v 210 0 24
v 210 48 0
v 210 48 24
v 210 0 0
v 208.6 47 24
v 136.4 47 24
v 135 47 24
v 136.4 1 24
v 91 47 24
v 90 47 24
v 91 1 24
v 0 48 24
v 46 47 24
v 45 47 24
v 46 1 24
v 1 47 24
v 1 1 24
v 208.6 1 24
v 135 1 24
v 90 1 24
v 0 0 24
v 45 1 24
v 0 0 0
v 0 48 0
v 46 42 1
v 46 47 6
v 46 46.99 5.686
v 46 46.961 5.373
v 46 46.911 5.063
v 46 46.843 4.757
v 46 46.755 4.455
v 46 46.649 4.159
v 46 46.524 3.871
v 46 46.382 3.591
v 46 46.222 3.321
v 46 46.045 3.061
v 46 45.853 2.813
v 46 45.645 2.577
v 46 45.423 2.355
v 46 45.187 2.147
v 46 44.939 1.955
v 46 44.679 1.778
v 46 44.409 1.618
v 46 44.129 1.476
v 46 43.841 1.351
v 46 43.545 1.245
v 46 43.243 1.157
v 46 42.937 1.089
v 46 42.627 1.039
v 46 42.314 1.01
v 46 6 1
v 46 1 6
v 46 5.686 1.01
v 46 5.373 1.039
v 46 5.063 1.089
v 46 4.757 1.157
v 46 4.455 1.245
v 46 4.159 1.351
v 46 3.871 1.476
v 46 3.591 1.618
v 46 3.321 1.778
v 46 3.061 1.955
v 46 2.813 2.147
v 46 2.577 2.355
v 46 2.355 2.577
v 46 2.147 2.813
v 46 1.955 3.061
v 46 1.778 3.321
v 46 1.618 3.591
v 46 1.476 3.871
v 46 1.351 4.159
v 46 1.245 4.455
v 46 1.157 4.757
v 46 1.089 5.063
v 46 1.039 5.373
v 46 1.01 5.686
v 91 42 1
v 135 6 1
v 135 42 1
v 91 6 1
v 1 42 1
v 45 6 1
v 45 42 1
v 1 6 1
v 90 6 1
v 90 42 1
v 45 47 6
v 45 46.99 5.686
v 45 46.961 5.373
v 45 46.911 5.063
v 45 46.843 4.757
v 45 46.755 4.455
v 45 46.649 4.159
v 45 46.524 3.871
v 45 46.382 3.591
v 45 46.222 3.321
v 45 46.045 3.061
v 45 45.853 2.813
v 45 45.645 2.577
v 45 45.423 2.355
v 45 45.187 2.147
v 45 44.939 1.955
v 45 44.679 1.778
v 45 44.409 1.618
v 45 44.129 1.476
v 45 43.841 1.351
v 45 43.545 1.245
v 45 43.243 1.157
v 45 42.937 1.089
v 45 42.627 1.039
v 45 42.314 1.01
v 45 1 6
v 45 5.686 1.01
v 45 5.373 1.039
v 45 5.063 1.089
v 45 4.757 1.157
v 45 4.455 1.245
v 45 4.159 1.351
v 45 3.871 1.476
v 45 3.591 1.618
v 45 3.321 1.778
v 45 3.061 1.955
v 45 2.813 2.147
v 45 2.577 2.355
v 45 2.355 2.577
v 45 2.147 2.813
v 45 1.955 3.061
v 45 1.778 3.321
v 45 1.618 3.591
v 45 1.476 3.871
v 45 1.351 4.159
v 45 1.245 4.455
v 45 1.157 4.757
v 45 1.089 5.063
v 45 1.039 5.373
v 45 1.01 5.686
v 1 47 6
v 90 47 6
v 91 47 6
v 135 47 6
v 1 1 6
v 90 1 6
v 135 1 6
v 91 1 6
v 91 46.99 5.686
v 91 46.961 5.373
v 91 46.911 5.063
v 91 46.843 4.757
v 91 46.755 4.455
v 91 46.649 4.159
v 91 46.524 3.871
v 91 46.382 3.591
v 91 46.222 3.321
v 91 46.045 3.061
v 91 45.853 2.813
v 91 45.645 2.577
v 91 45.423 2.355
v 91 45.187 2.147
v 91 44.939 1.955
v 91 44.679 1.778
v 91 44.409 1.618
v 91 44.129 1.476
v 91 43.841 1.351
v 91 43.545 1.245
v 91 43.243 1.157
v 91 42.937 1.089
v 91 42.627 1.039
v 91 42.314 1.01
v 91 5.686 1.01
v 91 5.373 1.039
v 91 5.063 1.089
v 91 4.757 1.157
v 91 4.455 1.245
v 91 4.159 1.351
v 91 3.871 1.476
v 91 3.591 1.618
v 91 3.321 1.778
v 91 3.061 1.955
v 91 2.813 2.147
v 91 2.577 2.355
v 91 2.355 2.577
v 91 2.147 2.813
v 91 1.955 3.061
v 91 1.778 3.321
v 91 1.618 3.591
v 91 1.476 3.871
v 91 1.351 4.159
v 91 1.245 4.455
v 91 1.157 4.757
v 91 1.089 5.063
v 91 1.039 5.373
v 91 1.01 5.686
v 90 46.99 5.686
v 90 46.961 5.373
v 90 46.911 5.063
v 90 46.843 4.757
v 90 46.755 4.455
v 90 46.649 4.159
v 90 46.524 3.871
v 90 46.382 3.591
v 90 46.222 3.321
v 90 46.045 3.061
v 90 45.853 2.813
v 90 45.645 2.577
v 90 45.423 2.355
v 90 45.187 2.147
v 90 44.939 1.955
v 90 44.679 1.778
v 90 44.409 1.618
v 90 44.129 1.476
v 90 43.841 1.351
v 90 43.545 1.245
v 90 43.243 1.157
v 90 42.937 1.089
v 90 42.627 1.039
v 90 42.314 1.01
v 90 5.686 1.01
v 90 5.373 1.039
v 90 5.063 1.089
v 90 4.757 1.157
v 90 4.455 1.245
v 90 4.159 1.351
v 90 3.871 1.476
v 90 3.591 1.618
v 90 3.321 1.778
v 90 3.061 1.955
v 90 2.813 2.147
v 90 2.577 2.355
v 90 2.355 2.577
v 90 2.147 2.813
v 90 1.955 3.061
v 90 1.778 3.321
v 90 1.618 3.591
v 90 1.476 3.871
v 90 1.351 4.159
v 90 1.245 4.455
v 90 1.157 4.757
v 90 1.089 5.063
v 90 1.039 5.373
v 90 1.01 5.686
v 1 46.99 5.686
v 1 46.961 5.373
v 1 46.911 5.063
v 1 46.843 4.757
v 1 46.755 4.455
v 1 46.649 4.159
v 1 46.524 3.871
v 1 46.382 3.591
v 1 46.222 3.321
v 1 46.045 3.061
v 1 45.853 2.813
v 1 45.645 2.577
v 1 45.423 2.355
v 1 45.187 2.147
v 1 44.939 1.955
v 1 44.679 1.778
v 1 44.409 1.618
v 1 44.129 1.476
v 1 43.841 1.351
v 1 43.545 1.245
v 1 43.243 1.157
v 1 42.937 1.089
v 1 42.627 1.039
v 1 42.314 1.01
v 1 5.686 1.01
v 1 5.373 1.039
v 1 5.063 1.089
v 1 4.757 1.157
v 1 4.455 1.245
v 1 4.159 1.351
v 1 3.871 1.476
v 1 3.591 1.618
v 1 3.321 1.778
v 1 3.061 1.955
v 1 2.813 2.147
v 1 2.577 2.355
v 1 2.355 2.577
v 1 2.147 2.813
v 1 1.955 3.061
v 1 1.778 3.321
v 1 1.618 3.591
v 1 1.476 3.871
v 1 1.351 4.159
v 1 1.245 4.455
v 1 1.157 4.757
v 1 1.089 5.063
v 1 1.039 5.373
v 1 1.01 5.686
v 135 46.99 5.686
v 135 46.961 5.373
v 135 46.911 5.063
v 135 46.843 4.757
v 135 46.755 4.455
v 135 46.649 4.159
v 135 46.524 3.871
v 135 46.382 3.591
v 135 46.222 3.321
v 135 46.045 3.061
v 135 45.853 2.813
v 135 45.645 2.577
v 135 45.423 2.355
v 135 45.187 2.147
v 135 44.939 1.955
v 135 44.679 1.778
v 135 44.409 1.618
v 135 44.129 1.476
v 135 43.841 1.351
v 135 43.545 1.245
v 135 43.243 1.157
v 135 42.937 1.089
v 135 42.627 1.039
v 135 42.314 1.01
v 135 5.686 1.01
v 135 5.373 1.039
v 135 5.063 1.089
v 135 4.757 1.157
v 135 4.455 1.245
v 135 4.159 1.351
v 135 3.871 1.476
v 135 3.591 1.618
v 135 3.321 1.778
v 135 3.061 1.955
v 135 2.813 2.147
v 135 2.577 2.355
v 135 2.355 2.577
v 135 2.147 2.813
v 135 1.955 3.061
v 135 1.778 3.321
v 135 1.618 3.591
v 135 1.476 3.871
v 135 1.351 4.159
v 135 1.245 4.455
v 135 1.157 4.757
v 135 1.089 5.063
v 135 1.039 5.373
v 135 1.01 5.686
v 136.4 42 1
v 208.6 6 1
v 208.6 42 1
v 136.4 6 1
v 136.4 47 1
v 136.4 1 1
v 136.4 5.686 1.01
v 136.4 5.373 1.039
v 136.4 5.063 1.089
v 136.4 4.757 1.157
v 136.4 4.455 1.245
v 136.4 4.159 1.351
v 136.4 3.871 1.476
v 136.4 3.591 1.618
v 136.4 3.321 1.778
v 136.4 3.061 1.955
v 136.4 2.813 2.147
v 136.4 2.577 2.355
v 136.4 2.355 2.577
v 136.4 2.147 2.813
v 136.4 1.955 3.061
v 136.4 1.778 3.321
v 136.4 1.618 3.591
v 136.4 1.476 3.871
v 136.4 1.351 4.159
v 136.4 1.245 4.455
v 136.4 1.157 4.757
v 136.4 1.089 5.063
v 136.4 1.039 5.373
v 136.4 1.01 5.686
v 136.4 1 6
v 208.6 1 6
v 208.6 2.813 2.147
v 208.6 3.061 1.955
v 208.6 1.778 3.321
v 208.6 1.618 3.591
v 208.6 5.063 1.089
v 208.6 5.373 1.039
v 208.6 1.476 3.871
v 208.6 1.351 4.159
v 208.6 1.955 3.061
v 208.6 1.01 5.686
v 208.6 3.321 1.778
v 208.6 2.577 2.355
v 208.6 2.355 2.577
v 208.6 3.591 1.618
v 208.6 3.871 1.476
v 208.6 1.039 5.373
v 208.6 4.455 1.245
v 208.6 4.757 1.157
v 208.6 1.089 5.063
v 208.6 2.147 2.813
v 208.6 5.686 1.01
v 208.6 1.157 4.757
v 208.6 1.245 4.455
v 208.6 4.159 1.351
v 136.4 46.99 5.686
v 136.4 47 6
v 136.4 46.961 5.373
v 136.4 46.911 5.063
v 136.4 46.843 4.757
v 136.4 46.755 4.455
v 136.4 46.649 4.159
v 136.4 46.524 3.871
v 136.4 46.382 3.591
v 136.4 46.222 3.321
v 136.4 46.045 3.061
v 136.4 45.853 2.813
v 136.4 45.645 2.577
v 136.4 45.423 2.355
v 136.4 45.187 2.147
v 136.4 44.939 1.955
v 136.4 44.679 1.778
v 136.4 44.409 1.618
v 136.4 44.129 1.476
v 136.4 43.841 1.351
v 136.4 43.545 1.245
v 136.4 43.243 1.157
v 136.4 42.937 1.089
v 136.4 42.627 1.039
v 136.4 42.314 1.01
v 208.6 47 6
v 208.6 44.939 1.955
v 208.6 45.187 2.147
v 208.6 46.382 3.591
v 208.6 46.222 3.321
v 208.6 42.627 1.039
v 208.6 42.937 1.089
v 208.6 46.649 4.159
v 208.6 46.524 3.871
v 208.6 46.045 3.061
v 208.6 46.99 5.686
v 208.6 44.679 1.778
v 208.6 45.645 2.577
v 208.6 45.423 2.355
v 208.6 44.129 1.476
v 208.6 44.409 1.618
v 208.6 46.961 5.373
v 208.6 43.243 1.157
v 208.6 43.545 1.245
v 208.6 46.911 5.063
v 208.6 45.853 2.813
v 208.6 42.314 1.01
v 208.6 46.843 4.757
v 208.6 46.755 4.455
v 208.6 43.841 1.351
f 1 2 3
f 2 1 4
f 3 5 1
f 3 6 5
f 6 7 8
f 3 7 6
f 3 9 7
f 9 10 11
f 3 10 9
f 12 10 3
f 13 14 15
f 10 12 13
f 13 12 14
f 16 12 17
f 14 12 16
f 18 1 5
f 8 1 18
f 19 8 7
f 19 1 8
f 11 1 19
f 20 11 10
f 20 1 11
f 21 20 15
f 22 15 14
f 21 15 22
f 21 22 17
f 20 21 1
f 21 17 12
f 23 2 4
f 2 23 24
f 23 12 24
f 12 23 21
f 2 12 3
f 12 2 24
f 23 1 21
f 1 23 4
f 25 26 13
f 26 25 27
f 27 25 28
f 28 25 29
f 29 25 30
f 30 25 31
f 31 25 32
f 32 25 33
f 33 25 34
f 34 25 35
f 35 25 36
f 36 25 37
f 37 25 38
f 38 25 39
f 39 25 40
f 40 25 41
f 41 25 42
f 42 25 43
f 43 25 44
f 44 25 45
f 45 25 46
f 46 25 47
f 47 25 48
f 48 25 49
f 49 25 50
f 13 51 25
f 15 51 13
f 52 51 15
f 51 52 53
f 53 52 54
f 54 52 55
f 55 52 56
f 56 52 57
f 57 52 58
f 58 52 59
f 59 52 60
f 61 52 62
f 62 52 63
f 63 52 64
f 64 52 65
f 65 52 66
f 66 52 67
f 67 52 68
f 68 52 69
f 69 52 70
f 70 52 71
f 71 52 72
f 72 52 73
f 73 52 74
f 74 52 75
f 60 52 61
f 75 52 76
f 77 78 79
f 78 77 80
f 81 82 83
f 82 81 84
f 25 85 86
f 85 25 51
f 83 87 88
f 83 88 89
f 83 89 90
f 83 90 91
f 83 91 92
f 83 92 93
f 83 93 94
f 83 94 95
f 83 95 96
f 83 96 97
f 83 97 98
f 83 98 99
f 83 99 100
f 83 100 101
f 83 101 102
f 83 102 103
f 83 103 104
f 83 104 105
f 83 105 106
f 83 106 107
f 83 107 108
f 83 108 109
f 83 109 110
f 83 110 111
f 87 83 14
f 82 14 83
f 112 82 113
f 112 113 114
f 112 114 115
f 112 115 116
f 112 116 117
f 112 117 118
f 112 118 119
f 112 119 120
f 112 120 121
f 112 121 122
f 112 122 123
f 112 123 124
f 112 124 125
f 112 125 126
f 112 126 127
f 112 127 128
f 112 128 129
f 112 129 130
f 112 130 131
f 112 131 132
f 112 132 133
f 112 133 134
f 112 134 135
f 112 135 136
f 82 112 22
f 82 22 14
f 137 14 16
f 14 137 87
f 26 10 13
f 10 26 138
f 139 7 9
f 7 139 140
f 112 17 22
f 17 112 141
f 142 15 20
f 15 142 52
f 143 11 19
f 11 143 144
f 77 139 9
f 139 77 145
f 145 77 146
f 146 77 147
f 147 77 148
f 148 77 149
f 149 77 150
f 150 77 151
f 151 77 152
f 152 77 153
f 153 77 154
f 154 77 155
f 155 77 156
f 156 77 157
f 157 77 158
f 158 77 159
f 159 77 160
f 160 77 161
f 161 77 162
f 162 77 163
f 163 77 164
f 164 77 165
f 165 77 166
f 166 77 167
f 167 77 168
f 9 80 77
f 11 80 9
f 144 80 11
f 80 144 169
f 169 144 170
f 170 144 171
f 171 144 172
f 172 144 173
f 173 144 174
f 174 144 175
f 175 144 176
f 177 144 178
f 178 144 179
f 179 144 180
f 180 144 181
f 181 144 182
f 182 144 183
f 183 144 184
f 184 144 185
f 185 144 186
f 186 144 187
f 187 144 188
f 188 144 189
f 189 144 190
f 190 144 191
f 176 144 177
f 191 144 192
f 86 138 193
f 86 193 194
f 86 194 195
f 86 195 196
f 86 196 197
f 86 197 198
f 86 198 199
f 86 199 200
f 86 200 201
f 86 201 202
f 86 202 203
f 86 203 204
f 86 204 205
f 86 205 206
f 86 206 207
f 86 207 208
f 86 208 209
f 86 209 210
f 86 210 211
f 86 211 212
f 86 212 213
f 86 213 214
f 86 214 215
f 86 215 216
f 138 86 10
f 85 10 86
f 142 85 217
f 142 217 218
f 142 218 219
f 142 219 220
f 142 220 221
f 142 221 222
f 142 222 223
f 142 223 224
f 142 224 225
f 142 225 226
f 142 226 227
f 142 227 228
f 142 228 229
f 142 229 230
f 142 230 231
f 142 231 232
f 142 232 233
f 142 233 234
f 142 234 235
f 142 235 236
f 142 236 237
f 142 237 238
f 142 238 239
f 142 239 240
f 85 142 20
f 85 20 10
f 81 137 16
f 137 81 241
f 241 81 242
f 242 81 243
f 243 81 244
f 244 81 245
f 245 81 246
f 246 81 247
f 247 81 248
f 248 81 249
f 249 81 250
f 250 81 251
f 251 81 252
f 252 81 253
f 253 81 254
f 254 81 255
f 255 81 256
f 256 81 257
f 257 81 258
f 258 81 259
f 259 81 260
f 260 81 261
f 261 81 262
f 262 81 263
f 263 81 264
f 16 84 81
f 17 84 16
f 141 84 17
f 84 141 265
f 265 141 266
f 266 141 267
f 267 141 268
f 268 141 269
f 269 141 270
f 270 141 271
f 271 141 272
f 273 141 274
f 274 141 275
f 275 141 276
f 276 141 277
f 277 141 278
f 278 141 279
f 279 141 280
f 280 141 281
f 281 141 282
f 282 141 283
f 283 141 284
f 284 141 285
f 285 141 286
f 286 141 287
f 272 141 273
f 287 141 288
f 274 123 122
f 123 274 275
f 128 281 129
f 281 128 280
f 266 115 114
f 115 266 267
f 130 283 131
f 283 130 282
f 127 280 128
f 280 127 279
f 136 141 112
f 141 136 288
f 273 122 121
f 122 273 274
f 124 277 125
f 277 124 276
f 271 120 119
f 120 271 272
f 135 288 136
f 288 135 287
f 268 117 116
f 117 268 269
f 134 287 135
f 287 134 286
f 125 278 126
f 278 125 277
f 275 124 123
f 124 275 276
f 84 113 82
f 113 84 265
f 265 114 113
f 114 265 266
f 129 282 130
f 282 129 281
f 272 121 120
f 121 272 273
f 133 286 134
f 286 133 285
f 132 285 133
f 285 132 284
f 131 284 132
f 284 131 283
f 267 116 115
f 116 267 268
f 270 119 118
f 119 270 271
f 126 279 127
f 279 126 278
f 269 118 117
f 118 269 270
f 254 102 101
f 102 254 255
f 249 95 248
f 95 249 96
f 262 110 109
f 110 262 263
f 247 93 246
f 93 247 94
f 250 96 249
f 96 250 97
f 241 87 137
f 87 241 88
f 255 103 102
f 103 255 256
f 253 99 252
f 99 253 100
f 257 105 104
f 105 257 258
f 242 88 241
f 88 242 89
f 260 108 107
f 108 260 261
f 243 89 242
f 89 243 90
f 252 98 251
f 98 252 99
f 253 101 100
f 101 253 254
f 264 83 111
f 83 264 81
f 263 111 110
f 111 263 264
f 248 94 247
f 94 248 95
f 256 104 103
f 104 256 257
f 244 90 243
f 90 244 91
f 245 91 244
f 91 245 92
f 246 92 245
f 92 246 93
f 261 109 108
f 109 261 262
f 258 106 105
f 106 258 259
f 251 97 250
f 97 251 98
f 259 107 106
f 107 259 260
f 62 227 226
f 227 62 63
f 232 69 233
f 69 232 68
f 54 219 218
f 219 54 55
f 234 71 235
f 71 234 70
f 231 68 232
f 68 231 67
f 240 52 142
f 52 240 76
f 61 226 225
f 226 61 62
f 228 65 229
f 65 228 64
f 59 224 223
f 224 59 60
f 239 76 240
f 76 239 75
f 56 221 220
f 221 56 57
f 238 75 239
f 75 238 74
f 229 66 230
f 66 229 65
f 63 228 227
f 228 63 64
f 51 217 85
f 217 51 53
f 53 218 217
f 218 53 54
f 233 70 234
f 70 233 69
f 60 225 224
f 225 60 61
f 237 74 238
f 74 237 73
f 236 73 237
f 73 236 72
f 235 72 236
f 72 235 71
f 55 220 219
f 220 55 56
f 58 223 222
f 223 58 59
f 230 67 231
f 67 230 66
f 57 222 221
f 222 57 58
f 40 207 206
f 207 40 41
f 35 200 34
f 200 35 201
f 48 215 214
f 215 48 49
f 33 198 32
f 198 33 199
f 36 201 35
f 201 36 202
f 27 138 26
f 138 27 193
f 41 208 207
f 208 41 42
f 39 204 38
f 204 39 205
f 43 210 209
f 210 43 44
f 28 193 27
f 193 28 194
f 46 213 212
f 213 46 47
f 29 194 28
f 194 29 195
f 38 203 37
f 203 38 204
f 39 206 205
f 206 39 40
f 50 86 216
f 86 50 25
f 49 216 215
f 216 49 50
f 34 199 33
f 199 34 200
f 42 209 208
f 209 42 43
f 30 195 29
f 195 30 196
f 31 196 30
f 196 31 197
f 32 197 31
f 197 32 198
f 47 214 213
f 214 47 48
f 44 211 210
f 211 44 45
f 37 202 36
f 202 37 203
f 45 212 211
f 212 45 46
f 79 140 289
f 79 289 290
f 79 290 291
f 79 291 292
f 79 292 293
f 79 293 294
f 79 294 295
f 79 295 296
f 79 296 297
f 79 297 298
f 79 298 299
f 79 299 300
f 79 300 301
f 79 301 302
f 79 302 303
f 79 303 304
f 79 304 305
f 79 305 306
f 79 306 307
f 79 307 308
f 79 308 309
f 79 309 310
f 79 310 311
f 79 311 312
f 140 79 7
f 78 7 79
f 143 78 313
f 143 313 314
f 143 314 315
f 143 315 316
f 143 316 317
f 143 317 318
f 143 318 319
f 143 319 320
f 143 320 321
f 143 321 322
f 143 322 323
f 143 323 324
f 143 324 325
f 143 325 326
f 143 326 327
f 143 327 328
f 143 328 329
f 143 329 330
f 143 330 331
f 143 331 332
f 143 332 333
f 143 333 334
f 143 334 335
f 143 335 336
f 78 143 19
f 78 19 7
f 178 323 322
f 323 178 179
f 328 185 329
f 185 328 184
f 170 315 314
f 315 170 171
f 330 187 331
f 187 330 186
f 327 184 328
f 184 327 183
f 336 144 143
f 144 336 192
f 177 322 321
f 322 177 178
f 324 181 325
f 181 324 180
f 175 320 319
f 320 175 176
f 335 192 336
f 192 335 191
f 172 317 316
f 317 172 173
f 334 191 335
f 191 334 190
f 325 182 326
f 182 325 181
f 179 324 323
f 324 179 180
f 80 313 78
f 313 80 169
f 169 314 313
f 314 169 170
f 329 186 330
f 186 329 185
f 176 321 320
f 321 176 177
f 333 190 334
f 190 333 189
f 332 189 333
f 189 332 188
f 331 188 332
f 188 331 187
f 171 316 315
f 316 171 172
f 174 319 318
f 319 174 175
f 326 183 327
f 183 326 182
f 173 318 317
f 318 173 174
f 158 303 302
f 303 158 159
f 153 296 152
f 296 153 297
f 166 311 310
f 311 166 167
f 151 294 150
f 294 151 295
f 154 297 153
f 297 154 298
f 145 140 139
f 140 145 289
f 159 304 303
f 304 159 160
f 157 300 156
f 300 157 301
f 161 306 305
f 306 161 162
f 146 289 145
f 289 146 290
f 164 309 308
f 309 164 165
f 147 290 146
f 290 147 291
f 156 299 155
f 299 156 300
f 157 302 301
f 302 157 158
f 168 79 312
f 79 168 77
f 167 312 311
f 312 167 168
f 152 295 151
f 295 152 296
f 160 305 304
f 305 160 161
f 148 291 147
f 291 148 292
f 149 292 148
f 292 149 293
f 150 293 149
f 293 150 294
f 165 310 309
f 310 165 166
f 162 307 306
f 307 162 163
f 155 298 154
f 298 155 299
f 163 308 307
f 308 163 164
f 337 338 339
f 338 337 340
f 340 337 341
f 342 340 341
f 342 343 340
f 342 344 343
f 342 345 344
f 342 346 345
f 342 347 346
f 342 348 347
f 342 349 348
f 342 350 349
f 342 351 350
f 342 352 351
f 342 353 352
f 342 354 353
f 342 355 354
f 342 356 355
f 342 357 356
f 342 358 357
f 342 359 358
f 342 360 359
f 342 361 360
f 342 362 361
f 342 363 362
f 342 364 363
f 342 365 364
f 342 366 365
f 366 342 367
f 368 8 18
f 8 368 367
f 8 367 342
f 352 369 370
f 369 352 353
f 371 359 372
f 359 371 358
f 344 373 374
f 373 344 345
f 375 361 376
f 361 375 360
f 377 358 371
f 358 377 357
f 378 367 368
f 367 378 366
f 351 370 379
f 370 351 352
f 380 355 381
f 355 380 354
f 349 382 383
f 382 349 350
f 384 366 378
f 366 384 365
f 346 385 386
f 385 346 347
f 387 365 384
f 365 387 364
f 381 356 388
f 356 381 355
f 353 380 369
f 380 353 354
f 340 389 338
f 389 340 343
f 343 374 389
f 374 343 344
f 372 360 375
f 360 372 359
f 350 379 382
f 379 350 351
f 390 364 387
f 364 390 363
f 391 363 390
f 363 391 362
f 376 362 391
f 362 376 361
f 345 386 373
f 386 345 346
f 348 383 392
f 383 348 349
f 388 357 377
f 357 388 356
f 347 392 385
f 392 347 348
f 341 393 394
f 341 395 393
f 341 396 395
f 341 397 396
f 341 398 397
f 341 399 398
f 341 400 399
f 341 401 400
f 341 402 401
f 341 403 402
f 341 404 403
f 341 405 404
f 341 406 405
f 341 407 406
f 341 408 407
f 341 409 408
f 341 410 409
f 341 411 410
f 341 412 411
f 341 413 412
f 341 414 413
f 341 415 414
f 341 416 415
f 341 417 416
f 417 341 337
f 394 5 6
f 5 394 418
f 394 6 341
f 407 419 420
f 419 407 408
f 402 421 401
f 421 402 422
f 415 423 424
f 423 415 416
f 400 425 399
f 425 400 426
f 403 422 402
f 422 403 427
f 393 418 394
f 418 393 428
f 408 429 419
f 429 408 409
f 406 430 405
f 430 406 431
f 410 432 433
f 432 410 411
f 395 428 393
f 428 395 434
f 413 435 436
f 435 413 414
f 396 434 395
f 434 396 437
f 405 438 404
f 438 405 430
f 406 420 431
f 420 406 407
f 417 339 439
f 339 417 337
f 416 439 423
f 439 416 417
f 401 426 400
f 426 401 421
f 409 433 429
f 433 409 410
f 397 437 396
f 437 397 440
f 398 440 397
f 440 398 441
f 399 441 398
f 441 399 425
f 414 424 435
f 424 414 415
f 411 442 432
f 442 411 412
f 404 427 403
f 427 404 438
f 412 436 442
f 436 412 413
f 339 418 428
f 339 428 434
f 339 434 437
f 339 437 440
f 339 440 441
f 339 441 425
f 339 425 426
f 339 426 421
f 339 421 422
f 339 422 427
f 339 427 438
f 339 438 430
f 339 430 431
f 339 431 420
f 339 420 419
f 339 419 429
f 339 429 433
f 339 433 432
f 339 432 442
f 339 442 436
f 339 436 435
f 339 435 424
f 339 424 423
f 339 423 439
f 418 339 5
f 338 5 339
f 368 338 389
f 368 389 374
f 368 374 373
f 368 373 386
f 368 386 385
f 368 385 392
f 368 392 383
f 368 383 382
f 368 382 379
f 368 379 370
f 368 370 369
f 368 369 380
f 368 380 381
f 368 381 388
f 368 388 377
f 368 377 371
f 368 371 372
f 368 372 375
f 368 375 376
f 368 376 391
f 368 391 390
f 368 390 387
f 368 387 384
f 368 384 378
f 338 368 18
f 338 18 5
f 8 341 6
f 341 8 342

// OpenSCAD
include <boardgame_insert_toolkit_lib.2.scad>;

// determines whether lids are output.
g_b_print_lid = true;

// determines whether boxes are output.
g_b_print_box = true; 

// Focus on one box
g_isolated_print_box = ""; 

// Used to visualize how all of the boxes fit together. 
g_b_visualization = false;          
        
// this is the outer wall thickness. 
//Default = 1.5mm
g_wall_thickness = 1.0;

// The tolerance value is extra space put between planes of the lid and box that fit together.
// Increase the tolerance to loosen the fit and decrease it to tighten it.
//
// Note that the tolerance is applied exclusively to the lid.
// So if the lid is too tight or too loose, change this value ( up for looser fit, down for tighter fit ) and 
// you only need to reprint the lid.
// 
// The exception is the stackable box, where the bottom of the box is the lid of the box below,
// in which case the tolerance also affects that box bottom.
//
g_tolerance = 0.15;

// This adjusts the position of the lid detents downward. 
// The larger the value, the bigger the gap between the lid and the box.
g_tolerance_detents_pos = 0.1;

aw_size_x = 210.0;
aw_size_y = 48.0;
aw_size_z = 24.0;


data =
  [
    [
      "simple box",
      [
        [ BOX_SIZE_XYZ, [aw_size_x, aw_size_y, aw_size_z] ],
        [ BOX_NO_LID_B, t],
        [
          BOX_COMPONENT,
          [
            [
              CMP_COMPARTMENT_SIZE_XYZ,
              [
                44,
                (aw_size_y - 1.0 - 1.0),
                aw_size_z - g_wall_thickness
              ]
            ],
            [ CMP_NUM_COMPARTMENTS_XY, [3, 1] ],
            //[ CMP_FILLET_RADIUS, 5.0 ],
            [ POSITION_XY, [0, 0] ],
            [ CMP_CUTOUT_SIDES_4B,   [f,f,f,f]],
            //[ CMP_CUTOUT_DEPTH_PCT,  20],
            //[ CMP_CUTOUT_WIDTH_PCT,  50],
            [ CMP_CUTOUT_HEIGHT_PCT, 100], 
            [ CMP_SHAPE_ROTATED_B, t ],
            [ CMP_SHAPE, FILLET ],
            [ CMP_FILLET_RADIUS, 5.0 ],
          ]
        ],
        [
          BOX_COMPONENT,
          [
            [
              CMP_COMPARTMENT_SIZE_XYZ,
              [
                72.2,
                (aw_size_y - 1.0 - 1.0),
                aw_size_z - g_wall_thickness
              ]
            ],
            [ CMP_NUM_COMPARTMENTS_XY, [1, 1] ],
            //[ CMP_FILLET_RADIUS, 5.0 ],
            [ POSITION_XY, [135.4, 0] ],
            [ CMP_CUTOUT_SIDES_4B,   [f,f,f,f]],
            //[ CMP_CUTOUT_DEPTH_PCT,  20],
            //[ CMP_CUTOUT_WIDTH_PCT,  50],
            [ CMP_CUTOUT_HEIGHT_PCT, 100], 
            [ CMP_SHAPE_ROTATED_B, t ],
            [ CMP_SHAPE, FILLET ],
            [ CMP_FILLET_RADIUS, 5.0 ],
          ]
        ],
      ]
    ]
  ];

MakeAll();
